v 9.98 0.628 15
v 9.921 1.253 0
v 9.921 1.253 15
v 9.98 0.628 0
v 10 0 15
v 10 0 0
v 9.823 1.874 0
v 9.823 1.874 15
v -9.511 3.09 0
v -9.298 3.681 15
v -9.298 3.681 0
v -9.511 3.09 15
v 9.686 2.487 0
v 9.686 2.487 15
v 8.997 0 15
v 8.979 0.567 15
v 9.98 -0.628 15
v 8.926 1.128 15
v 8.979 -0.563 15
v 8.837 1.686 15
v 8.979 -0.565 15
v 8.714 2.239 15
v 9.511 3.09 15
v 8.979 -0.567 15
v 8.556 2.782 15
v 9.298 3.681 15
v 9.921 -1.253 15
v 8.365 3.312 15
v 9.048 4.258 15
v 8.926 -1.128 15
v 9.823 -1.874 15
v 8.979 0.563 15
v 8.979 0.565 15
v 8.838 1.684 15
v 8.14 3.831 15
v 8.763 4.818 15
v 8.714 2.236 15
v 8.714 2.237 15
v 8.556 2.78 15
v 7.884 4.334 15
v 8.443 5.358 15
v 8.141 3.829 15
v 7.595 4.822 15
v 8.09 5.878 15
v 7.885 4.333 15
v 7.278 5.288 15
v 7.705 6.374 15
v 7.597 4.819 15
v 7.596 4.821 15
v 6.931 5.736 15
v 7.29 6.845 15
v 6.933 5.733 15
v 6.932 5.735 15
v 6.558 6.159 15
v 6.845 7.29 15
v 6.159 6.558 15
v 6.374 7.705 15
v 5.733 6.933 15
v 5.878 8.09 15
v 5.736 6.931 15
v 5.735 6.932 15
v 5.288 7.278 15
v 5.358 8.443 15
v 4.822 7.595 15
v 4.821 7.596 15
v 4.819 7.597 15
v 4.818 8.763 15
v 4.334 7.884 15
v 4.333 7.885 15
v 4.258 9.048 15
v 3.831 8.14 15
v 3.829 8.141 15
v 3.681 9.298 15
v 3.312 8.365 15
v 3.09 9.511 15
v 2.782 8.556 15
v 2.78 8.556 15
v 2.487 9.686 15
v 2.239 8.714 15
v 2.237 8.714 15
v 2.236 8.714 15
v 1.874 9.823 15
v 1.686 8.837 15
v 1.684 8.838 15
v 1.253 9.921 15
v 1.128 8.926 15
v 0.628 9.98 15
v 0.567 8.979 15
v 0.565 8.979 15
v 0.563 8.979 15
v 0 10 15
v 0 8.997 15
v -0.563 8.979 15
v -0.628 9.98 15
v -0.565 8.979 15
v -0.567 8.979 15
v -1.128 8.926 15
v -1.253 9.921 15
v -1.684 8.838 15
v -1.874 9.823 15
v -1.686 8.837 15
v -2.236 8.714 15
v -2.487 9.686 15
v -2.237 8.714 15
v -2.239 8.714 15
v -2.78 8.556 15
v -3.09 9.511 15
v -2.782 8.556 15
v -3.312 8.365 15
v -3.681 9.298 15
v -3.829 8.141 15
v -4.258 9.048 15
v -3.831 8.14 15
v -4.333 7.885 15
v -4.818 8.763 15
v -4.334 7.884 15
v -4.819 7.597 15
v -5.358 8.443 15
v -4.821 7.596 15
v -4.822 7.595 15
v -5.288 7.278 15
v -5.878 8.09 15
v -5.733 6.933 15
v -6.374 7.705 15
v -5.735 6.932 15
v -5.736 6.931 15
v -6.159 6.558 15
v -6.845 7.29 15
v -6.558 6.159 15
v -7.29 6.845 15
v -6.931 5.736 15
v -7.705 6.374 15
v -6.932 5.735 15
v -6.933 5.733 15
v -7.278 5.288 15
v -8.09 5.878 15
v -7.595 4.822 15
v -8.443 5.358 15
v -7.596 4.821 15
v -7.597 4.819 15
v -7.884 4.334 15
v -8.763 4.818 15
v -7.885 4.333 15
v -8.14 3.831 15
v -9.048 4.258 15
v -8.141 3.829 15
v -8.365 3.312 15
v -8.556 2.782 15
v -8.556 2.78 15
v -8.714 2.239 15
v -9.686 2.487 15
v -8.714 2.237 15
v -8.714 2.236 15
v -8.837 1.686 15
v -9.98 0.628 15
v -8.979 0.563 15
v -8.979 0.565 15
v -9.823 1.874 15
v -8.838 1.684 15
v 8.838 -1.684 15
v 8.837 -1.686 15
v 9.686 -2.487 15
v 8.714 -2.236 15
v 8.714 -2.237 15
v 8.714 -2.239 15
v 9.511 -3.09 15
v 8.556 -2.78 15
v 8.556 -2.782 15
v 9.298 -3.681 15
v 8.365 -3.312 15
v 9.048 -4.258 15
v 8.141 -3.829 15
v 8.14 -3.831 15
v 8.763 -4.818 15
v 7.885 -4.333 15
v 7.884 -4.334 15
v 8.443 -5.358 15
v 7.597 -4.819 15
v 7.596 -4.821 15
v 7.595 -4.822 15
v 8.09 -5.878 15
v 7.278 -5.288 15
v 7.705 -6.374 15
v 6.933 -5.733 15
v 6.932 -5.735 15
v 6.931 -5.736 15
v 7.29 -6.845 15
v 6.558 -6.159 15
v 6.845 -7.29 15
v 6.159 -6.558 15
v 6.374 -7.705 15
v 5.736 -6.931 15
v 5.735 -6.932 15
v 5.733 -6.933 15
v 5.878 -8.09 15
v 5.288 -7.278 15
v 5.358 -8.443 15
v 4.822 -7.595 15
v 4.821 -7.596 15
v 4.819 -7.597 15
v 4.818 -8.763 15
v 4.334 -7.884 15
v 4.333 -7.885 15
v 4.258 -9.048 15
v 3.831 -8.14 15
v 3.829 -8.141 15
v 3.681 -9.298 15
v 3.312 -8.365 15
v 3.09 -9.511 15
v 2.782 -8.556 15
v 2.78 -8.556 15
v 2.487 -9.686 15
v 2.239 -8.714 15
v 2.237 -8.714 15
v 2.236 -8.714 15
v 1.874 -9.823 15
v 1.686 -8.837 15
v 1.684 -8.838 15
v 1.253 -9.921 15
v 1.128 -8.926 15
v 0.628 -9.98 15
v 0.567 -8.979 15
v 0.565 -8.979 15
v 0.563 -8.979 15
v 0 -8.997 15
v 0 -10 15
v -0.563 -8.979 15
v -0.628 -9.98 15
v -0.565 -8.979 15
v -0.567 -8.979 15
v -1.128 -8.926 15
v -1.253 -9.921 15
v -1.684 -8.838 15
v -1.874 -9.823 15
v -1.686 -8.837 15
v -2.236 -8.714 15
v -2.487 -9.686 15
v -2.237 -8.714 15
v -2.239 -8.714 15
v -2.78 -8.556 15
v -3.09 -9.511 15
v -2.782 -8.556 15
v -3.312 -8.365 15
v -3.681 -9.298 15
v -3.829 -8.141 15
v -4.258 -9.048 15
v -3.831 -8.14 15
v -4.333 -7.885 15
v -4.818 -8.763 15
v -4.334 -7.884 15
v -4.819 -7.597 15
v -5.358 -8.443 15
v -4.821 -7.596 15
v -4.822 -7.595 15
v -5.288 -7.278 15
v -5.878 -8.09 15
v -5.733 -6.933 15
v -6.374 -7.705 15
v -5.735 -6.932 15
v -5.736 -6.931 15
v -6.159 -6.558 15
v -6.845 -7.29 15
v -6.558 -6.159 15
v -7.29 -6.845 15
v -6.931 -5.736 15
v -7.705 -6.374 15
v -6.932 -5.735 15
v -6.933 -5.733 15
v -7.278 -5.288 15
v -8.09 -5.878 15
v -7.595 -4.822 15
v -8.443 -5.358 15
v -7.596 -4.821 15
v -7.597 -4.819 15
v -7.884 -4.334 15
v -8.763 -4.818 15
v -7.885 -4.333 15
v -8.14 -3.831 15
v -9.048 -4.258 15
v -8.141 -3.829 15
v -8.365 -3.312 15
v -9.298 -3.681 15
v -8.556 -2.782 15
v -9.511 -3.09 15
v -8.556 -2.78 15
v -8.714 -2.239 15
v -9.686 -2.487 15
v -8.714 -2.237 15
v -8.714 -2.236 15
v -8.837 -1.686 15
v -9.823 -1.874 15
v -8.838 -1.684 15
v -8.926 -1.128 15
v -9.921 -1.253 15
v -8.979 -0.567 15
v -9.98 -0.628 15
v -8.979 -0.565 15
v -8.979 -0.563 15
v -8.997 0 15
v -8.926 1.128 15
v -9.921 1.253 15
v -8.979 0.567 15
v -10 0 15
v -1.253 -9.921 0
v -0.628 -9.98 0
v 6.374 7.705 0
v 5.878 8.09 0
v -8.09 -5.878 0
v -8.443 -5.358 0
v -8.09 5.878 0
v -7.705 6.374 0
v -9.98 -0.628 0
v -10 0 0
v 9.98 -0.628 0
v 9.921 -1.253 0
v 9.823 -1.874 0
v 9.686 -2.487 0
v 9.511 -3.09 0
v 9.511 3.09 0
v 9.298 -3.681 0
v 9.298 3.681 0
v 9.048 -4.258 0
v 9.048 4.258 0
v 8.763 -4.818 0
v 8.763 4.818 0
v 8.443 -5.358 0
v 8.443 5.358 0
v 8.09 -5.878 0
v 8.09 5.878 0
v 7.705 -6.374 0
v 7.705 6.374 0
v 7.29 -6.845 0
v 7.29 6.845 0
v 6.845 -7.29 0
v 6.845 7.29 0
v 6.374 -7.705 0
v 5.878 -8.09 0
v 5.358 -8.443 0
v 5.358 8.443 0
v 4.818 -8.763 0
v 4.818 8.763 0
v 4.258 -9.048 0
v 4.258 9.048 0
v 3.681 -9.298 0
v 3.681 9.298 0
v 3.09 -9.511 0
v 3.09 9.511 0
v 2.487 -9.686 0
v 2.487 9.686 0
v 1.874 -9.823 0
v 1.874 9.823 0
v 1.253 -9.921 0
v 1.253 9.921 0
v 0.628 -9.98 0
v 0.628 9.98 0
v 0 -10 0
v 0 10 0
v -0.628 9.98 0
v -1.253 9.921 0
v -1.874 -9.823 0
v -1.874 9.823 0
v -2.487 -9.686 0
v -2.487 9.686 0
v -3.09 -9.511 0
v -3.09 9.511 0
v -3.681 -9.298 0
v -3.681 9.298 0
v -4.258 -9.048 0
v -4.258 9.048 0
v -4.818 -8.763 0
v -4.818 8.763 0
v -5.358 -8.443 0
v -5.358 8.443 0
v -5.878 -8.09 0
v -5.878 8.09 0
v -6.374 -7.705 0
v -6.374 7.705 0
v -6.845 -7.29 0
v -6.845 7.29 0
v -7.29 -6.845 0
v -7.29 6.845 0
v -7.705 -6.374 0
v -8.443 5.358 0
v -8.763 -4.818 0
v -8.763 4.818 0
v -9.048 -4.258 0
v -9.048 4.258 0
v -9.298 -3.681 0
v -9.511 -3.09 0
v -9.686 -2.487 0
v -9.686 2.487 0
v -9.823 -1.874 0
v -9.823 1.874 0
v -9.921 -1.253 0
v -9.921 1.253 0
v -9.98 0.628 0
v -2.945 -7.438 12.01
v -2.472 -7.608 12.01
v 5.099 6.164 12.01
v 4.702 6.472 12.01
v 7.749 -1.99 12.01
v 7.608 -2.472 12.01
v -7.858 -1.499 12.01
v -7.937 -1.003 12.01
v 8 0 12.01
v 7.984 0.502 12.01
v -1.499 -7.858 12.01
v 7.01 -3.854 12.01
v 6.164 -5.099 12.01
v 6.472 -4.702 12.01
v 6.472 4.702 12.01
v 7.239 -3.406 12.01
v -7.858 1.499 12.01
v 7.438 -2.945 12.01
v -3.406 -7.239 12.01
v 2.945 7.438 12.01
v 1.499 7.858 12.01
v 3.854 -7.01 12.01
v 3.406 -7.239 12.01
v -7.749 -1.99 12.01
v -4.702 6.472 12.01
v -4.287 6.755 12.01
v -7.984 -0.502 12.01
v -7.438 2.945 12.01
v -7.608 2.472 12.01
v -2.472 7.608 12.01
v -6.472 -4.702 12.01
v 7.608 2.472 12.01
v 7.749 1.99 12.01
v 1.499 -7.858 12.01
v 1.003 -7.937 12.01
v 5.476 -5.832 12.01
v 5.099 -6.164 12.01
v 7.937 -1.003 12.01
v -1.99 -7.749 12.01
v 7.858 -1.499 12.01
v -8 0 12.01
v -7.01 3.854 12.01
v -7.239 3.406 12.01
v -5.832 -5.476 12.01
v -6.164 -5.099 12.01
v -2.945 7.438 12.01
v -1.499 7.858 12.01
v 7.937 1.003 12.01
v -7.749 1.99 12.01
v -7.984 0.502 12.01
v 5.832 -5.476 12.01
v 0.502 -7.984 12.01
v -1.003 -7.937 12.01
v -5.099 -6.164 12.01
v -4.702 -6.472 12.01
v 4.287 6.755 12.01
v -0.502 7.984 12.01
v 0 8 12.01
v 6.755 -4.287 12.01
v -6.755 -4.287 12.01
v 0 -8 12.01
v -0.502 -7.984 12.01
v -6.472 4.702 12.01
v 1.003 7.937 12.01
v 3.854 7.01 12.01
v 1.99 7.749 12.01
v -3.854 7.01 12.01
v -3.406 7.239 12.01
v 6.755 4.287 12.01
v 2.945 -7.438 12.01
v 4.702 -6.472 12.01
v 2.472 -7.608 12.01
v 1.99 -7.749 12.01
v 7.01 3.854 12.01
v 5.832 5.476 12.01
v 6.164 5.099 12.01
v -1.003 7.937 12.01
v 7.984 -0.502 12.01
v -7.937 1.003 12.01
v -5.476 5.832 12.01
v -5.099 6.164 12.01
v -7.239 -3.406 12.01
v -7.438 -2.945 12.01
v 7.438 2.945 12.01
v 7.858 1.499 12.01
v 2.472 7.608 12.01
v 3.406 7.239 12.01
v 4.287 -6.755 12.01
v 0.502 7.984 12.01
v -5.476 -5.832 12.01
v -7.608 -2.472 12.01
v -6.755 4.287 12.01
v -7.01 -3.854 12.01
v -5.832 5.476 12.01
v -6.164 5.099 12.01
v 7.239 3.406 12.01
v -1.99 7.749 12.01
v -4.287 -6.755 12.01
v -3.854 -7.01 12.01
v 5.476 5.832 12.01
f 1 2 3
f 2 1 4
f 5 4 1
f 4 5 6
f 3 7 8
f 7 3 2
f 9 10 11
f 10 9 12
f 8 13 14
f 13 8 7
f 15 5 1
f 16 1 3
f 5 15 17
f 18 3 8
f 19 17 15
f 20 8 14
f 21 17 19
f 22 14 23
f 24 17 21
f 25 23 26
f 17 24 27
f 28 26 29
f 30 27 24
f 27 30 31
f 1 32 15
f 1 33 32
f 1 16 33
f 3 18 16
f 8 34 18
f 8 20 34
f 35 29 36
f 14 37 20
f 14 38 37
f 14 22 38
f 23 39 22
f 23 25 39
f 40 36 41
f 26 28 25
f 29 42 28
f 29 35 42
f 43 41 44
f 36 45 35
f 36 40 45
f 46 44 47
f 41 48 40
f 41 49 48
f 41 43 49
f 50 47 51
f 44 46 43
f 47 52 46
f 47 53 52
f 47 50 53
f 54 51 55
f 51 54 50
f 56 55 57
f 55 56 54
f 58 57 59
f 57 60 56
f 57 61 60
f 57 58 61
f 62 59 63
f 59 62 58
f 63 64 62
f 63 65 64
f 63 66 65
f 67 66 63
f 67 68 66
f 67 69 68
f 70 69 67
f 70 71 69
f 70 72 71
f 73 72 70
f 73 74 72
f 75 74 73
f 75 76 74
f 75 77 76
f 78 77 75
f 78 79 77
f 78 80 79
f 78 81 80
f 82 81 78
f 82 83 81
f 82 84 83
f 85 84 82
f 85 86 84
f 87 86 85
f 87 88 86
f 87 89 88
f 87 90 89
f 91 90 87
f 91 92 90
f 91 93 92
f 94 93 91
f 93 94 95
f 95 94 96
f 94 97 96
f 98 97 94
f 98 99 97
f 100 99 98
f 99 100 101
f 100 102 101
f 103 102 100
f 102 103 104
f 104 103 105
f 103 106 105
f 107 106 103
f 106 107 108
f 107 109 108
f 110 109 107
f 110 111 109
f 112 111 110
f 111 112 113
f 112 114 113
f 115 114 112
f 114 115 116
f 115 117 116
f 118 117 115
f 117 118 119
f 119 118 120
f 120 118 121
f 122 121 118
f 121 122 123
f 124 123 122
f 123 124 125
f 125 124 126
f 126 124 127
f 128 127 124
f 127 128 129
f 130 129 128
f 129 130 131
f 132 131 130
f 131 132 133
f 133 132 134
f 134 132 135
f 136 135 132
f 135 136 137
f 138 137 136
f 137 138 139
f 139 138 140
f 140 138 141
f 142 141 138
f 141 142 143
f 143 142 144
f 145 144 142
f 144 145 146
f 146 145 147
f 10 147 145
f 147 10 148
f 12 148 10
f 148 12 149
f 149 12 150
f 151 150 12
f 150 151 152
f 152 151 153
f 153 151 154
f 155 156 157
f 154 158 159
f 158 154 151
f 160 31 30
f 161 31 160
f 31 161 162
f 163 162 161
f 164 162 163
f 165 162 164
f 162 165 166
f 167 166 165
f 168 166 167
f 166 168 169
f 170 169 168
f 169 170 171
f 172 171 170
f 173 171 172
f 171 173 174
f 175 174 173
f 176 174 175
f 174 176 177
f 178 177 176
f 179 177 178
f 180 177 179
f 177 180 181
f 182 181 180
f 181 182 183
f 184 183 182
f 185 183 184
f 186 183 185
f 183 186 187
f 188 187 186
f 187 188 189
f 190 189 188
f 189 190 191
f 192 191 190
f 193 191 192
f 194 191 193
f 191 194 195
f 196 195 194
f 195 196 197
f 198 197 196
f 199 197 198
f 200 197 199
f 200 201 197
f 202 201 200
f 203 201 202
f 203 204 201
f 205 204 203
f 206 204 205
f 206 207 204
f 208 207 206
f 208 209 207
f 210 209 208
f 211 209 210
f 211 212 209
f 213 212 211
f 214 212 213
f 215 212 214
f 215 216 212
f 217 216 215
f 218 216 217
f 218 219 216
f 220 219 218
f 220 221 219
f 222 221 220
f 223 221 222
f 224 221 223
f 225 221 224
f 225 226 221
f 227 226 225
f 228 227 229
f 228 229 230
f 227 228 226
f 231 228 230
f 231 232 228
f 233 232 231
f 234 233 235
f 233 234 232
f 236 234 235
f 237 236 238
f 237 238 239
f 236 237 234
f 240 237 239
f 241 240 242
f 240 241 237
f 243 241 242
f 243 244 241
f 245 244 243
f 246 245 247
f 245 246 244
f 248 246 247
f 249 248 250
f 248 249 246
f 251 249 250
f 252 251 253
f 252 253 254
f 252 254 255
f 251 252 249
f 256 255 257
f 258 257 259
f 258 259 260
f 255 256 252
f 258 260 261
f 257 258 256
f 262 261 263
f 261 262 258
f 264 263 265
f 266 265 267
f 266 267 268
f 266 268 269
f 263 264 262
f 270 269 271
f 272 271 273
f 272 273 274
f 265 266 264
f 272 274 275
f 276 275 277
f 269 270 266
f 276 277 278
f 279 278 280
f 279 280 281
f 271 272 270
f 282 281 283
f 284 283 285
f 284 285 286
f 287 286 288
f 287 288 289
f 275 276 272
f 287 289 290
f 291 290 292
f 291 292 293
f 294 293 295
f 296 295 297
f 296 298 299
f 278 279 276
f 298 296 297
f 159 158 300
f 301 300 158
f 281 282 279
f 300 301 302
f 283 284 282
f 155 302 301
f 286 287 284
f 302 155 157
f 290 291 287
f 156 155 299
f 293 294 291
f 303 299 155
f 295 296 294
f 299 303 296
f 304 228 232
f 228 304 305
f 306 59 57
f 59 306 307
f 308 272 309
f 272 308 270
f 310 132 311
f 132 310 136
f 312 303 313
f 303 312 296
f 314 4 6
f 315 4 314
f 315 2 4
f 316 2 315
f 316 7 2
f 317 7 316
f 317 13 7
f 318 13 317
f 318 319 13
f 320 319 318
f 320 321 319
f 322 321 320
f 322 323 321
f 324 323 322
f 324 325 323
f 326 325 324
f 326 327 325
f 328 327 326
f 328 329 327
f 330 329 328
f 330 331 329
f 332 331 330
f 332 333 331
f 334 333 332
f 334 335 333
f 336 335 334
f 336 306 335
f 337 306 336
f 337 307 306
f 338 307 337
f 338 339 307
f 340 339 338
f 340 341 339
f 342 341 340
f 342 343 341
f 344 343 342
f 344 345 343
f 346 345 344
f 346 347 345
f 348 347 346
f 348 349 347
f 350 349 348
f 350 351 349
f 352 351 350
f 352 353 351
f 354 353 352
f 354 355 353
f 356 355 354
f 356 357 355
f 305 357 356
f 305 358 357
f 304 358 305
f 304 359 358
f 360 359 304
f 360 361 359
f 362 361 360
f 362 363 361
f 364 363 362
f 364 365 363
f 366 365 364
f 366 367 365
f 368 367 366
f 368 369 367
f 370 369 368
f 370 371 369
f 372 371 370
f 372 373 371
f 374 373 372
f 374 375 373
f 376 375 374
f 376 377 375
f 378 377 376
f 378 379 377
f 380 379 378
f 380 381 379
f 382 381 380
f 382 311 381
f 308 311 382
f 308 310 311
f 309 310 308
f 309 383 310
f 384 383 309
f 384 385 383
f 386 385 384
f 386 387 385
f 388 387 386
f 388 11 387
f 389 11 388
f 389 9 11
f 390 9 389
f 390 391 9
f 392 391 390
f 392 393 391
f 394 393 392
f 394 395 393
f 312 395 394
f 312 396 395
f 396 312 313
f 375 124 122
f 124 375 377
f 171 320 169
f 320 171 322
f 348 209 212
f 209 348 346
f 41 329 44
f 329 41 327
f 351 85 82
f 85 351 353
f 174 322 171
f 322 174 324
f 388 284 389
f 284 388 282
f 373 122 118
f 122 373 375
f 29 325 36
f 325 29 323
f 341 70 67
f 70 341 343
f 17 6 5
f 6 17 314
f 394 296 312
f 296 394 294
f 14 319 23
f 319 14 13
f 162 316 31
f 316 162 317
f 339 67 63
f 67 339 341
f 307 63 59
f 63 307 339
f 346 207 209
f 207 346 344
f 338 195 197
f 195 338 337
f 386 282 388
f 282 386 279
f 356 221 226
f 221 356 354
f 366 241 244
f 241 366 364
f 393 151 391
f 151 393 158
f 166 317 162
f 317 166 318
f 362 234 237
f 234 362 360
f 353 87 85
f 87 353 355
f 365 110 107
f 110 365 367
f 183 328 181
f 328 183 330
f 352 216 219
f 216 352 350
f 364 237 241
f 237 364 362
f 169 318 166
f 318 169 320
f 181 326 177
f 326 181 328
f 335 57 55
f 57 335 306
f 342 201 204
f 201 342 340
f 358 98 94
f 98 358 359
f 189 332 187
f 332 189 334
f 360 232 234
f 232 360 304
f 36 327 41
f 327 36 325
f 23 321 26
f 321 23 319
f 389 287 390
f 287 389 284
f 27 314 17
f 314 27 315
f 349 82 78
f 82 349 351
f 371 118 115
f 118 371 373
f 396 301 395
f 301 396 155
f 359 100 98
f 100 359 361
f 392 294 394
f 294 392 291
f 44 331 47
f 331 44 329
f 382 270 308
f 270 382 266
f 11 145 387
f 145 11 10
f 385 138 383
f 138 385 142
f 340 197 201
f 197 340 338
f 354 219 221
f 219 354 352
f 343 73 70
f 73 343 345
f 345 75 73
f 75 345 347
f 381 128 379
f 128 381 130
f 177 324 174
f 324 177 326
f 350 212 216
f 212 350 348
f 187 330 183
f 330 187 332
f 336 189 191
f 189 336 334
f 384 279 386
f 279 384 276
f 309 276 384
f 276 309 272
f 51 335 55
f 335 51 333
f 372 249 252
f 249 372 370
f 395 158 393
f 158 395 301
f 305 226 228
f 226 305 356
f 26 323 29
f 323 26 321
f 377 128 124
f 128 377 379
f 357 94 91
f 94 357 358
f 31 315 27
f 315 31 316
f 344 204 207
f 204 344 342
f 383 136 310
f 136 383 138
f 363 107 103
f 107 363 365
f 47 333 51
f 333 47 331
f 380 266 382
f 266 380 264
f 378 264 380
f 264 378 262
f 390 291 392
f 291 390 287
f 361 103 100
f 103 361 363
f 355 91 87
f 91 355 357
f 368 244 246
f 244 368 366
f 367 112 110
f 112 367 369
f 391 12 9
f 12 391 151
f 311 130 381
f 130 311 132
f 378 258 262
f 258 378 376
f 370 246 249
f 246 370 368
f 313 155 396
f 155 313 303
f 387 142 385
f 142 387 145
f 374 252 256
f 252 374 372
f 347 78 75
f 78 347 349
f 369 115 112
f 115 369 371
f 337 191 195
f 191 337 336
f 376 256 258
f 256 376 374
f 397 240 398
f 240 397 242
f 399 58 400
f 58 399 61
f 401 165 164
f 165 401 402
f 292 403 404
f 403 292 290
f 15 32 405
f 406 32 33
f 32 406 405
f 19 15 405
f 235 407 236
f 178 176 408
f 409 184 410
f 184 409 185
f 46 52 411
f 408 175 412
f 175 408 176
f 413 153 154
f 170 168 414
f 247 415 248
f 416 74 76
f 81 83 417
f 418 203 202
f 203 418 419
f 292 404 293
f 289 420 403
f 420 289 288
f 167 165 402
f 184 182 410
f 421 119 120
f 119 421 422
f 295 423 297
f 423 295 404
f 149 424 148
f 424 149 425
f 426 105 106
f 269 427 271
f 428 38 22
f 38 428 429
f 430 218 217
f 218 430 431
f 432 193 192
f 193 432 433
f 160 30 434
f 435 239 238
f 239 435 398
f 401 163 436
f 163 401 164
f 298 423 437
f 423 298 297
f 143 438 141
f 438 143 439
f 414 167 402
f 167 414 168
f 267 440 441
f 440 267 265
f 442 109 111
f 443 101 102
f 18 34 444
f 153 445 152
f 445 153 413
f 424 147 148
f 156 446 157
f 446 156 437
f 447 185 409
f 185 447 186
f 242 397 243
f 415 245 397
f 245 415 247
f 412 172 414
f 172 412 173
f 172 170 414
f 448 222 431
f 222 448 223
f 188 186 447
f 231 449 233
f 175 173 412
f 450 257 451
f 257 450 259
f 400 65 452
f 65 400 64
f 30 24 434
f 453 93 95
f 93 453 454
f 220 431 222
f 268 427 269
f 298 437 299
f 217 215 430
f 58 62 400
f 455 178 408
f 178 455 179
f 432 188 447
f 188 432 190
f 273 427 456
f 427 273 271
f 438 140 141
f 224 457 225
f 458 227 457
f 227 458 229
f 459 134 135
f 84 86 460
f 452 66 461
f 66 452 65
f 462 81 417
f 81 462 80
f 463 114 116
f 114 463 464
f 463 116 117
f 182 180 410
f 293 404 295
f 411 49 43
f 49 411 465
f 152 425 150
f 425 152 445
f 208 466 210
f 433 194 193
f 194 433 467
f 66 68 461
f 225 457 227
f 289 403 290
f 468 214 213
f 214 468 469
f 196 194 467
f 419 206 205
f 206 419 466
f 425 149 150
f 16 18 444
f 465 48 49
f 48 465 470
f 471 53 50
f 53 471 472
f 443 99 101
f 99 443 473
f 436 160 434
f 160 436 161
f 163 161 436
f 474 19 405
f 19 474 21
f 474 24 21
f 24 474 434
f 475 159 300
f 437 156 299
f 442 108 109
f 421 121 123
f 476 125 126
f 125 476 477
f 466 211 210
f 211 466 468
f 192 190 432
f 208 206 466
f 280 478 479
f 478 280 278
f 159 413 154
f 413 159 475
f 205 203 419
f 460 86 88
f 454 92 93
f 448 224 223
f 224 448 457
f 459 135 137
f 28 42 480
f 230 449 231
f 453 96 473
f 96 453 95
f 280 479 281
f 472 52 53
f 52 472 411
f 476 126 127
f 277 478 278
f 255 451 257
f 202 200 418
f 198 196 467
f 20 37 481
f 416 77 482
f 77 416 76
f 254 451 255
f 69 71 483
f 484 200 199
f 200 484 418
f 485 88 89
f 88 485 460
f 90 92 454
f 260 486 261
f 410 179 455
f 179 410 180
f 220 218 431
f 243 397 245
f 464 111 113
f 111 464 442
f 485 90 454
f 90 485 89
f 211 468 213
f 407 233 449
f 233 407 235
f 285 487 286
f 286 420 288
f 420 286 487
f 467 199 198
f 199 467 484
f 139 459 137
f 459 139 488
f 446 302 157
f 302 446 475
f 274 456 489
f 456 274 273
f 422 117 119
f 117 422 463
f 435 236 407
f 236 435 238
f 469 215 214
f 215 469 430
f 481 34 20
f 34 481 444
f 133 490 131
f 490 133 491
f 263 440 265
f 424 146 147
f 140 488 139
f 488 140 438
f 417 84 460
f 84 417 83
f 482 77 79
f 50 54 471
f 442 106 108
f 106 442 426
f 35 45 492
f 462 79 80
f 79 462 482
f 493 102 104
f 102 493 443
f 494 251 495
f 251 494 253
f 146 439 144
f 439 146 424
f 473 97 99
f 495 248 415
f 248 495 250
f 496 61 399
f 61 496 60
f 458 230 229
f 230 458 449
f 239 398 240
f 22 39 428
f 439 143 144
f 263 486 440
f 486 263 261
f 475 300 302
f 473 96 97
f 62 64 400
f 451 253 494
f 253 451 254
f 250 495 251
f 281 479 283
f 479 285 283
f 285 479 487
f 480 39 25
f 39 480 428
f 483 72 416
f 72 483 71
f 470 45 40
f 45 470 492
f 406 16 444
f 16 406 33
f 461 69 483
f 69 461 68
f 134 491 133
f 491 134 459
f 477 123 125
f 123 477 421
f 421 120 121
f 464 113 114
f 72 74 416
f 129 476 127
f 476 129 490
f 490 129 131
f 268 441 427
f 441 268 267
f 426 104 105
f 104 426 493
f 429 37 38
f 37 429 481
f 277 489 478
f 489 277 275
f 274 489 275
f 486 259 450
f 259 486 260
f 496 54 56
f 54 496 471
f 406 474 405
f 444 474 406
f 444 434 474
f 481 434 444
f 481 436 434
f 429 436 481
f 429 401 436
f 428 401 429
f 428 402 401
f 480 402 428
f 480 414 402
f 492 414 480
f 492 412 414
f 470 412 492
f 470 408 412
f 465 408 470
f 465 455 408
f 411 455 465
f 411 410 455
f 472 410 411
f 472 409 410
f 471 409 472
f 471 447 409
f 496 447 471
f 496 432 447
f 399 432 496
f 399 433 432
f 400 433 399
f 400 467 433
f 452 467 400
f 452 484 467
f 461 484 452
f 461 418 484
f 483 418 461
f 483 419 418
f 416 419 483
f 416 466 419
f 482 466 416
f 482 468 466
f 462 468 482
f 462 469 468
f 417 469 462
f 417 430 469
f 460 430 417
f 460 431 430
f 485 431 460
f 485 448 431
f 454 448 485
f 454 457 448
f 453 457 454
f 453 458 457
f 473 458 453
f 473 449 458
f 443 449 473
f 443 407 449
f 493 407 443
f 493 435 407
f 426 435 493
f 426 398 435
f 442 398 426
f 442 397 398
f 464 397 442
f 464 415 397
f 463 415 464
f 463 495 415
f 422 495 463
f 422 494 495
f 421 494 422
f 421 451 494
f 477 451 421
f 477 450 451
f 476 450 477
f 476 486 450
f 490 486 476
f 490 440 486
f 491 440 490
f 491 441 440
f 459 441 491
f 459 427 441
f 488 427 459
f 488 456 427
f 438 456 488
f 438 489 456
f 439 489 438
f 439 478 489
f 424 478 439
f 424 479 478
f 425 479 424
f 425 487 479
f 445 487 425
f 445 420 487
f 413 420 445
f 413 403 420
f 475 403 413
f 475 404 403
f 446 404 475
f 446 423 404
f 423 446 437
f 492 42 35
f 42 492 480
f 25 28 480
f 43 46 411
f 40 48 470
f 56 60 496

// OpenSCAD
$fn=100;
difference(){
    cylinder(h=15, r=10, center=false);
    translate([0,0, 12.01])
    cylinder(h=3, r1=8, r2=9, center=false);
}
